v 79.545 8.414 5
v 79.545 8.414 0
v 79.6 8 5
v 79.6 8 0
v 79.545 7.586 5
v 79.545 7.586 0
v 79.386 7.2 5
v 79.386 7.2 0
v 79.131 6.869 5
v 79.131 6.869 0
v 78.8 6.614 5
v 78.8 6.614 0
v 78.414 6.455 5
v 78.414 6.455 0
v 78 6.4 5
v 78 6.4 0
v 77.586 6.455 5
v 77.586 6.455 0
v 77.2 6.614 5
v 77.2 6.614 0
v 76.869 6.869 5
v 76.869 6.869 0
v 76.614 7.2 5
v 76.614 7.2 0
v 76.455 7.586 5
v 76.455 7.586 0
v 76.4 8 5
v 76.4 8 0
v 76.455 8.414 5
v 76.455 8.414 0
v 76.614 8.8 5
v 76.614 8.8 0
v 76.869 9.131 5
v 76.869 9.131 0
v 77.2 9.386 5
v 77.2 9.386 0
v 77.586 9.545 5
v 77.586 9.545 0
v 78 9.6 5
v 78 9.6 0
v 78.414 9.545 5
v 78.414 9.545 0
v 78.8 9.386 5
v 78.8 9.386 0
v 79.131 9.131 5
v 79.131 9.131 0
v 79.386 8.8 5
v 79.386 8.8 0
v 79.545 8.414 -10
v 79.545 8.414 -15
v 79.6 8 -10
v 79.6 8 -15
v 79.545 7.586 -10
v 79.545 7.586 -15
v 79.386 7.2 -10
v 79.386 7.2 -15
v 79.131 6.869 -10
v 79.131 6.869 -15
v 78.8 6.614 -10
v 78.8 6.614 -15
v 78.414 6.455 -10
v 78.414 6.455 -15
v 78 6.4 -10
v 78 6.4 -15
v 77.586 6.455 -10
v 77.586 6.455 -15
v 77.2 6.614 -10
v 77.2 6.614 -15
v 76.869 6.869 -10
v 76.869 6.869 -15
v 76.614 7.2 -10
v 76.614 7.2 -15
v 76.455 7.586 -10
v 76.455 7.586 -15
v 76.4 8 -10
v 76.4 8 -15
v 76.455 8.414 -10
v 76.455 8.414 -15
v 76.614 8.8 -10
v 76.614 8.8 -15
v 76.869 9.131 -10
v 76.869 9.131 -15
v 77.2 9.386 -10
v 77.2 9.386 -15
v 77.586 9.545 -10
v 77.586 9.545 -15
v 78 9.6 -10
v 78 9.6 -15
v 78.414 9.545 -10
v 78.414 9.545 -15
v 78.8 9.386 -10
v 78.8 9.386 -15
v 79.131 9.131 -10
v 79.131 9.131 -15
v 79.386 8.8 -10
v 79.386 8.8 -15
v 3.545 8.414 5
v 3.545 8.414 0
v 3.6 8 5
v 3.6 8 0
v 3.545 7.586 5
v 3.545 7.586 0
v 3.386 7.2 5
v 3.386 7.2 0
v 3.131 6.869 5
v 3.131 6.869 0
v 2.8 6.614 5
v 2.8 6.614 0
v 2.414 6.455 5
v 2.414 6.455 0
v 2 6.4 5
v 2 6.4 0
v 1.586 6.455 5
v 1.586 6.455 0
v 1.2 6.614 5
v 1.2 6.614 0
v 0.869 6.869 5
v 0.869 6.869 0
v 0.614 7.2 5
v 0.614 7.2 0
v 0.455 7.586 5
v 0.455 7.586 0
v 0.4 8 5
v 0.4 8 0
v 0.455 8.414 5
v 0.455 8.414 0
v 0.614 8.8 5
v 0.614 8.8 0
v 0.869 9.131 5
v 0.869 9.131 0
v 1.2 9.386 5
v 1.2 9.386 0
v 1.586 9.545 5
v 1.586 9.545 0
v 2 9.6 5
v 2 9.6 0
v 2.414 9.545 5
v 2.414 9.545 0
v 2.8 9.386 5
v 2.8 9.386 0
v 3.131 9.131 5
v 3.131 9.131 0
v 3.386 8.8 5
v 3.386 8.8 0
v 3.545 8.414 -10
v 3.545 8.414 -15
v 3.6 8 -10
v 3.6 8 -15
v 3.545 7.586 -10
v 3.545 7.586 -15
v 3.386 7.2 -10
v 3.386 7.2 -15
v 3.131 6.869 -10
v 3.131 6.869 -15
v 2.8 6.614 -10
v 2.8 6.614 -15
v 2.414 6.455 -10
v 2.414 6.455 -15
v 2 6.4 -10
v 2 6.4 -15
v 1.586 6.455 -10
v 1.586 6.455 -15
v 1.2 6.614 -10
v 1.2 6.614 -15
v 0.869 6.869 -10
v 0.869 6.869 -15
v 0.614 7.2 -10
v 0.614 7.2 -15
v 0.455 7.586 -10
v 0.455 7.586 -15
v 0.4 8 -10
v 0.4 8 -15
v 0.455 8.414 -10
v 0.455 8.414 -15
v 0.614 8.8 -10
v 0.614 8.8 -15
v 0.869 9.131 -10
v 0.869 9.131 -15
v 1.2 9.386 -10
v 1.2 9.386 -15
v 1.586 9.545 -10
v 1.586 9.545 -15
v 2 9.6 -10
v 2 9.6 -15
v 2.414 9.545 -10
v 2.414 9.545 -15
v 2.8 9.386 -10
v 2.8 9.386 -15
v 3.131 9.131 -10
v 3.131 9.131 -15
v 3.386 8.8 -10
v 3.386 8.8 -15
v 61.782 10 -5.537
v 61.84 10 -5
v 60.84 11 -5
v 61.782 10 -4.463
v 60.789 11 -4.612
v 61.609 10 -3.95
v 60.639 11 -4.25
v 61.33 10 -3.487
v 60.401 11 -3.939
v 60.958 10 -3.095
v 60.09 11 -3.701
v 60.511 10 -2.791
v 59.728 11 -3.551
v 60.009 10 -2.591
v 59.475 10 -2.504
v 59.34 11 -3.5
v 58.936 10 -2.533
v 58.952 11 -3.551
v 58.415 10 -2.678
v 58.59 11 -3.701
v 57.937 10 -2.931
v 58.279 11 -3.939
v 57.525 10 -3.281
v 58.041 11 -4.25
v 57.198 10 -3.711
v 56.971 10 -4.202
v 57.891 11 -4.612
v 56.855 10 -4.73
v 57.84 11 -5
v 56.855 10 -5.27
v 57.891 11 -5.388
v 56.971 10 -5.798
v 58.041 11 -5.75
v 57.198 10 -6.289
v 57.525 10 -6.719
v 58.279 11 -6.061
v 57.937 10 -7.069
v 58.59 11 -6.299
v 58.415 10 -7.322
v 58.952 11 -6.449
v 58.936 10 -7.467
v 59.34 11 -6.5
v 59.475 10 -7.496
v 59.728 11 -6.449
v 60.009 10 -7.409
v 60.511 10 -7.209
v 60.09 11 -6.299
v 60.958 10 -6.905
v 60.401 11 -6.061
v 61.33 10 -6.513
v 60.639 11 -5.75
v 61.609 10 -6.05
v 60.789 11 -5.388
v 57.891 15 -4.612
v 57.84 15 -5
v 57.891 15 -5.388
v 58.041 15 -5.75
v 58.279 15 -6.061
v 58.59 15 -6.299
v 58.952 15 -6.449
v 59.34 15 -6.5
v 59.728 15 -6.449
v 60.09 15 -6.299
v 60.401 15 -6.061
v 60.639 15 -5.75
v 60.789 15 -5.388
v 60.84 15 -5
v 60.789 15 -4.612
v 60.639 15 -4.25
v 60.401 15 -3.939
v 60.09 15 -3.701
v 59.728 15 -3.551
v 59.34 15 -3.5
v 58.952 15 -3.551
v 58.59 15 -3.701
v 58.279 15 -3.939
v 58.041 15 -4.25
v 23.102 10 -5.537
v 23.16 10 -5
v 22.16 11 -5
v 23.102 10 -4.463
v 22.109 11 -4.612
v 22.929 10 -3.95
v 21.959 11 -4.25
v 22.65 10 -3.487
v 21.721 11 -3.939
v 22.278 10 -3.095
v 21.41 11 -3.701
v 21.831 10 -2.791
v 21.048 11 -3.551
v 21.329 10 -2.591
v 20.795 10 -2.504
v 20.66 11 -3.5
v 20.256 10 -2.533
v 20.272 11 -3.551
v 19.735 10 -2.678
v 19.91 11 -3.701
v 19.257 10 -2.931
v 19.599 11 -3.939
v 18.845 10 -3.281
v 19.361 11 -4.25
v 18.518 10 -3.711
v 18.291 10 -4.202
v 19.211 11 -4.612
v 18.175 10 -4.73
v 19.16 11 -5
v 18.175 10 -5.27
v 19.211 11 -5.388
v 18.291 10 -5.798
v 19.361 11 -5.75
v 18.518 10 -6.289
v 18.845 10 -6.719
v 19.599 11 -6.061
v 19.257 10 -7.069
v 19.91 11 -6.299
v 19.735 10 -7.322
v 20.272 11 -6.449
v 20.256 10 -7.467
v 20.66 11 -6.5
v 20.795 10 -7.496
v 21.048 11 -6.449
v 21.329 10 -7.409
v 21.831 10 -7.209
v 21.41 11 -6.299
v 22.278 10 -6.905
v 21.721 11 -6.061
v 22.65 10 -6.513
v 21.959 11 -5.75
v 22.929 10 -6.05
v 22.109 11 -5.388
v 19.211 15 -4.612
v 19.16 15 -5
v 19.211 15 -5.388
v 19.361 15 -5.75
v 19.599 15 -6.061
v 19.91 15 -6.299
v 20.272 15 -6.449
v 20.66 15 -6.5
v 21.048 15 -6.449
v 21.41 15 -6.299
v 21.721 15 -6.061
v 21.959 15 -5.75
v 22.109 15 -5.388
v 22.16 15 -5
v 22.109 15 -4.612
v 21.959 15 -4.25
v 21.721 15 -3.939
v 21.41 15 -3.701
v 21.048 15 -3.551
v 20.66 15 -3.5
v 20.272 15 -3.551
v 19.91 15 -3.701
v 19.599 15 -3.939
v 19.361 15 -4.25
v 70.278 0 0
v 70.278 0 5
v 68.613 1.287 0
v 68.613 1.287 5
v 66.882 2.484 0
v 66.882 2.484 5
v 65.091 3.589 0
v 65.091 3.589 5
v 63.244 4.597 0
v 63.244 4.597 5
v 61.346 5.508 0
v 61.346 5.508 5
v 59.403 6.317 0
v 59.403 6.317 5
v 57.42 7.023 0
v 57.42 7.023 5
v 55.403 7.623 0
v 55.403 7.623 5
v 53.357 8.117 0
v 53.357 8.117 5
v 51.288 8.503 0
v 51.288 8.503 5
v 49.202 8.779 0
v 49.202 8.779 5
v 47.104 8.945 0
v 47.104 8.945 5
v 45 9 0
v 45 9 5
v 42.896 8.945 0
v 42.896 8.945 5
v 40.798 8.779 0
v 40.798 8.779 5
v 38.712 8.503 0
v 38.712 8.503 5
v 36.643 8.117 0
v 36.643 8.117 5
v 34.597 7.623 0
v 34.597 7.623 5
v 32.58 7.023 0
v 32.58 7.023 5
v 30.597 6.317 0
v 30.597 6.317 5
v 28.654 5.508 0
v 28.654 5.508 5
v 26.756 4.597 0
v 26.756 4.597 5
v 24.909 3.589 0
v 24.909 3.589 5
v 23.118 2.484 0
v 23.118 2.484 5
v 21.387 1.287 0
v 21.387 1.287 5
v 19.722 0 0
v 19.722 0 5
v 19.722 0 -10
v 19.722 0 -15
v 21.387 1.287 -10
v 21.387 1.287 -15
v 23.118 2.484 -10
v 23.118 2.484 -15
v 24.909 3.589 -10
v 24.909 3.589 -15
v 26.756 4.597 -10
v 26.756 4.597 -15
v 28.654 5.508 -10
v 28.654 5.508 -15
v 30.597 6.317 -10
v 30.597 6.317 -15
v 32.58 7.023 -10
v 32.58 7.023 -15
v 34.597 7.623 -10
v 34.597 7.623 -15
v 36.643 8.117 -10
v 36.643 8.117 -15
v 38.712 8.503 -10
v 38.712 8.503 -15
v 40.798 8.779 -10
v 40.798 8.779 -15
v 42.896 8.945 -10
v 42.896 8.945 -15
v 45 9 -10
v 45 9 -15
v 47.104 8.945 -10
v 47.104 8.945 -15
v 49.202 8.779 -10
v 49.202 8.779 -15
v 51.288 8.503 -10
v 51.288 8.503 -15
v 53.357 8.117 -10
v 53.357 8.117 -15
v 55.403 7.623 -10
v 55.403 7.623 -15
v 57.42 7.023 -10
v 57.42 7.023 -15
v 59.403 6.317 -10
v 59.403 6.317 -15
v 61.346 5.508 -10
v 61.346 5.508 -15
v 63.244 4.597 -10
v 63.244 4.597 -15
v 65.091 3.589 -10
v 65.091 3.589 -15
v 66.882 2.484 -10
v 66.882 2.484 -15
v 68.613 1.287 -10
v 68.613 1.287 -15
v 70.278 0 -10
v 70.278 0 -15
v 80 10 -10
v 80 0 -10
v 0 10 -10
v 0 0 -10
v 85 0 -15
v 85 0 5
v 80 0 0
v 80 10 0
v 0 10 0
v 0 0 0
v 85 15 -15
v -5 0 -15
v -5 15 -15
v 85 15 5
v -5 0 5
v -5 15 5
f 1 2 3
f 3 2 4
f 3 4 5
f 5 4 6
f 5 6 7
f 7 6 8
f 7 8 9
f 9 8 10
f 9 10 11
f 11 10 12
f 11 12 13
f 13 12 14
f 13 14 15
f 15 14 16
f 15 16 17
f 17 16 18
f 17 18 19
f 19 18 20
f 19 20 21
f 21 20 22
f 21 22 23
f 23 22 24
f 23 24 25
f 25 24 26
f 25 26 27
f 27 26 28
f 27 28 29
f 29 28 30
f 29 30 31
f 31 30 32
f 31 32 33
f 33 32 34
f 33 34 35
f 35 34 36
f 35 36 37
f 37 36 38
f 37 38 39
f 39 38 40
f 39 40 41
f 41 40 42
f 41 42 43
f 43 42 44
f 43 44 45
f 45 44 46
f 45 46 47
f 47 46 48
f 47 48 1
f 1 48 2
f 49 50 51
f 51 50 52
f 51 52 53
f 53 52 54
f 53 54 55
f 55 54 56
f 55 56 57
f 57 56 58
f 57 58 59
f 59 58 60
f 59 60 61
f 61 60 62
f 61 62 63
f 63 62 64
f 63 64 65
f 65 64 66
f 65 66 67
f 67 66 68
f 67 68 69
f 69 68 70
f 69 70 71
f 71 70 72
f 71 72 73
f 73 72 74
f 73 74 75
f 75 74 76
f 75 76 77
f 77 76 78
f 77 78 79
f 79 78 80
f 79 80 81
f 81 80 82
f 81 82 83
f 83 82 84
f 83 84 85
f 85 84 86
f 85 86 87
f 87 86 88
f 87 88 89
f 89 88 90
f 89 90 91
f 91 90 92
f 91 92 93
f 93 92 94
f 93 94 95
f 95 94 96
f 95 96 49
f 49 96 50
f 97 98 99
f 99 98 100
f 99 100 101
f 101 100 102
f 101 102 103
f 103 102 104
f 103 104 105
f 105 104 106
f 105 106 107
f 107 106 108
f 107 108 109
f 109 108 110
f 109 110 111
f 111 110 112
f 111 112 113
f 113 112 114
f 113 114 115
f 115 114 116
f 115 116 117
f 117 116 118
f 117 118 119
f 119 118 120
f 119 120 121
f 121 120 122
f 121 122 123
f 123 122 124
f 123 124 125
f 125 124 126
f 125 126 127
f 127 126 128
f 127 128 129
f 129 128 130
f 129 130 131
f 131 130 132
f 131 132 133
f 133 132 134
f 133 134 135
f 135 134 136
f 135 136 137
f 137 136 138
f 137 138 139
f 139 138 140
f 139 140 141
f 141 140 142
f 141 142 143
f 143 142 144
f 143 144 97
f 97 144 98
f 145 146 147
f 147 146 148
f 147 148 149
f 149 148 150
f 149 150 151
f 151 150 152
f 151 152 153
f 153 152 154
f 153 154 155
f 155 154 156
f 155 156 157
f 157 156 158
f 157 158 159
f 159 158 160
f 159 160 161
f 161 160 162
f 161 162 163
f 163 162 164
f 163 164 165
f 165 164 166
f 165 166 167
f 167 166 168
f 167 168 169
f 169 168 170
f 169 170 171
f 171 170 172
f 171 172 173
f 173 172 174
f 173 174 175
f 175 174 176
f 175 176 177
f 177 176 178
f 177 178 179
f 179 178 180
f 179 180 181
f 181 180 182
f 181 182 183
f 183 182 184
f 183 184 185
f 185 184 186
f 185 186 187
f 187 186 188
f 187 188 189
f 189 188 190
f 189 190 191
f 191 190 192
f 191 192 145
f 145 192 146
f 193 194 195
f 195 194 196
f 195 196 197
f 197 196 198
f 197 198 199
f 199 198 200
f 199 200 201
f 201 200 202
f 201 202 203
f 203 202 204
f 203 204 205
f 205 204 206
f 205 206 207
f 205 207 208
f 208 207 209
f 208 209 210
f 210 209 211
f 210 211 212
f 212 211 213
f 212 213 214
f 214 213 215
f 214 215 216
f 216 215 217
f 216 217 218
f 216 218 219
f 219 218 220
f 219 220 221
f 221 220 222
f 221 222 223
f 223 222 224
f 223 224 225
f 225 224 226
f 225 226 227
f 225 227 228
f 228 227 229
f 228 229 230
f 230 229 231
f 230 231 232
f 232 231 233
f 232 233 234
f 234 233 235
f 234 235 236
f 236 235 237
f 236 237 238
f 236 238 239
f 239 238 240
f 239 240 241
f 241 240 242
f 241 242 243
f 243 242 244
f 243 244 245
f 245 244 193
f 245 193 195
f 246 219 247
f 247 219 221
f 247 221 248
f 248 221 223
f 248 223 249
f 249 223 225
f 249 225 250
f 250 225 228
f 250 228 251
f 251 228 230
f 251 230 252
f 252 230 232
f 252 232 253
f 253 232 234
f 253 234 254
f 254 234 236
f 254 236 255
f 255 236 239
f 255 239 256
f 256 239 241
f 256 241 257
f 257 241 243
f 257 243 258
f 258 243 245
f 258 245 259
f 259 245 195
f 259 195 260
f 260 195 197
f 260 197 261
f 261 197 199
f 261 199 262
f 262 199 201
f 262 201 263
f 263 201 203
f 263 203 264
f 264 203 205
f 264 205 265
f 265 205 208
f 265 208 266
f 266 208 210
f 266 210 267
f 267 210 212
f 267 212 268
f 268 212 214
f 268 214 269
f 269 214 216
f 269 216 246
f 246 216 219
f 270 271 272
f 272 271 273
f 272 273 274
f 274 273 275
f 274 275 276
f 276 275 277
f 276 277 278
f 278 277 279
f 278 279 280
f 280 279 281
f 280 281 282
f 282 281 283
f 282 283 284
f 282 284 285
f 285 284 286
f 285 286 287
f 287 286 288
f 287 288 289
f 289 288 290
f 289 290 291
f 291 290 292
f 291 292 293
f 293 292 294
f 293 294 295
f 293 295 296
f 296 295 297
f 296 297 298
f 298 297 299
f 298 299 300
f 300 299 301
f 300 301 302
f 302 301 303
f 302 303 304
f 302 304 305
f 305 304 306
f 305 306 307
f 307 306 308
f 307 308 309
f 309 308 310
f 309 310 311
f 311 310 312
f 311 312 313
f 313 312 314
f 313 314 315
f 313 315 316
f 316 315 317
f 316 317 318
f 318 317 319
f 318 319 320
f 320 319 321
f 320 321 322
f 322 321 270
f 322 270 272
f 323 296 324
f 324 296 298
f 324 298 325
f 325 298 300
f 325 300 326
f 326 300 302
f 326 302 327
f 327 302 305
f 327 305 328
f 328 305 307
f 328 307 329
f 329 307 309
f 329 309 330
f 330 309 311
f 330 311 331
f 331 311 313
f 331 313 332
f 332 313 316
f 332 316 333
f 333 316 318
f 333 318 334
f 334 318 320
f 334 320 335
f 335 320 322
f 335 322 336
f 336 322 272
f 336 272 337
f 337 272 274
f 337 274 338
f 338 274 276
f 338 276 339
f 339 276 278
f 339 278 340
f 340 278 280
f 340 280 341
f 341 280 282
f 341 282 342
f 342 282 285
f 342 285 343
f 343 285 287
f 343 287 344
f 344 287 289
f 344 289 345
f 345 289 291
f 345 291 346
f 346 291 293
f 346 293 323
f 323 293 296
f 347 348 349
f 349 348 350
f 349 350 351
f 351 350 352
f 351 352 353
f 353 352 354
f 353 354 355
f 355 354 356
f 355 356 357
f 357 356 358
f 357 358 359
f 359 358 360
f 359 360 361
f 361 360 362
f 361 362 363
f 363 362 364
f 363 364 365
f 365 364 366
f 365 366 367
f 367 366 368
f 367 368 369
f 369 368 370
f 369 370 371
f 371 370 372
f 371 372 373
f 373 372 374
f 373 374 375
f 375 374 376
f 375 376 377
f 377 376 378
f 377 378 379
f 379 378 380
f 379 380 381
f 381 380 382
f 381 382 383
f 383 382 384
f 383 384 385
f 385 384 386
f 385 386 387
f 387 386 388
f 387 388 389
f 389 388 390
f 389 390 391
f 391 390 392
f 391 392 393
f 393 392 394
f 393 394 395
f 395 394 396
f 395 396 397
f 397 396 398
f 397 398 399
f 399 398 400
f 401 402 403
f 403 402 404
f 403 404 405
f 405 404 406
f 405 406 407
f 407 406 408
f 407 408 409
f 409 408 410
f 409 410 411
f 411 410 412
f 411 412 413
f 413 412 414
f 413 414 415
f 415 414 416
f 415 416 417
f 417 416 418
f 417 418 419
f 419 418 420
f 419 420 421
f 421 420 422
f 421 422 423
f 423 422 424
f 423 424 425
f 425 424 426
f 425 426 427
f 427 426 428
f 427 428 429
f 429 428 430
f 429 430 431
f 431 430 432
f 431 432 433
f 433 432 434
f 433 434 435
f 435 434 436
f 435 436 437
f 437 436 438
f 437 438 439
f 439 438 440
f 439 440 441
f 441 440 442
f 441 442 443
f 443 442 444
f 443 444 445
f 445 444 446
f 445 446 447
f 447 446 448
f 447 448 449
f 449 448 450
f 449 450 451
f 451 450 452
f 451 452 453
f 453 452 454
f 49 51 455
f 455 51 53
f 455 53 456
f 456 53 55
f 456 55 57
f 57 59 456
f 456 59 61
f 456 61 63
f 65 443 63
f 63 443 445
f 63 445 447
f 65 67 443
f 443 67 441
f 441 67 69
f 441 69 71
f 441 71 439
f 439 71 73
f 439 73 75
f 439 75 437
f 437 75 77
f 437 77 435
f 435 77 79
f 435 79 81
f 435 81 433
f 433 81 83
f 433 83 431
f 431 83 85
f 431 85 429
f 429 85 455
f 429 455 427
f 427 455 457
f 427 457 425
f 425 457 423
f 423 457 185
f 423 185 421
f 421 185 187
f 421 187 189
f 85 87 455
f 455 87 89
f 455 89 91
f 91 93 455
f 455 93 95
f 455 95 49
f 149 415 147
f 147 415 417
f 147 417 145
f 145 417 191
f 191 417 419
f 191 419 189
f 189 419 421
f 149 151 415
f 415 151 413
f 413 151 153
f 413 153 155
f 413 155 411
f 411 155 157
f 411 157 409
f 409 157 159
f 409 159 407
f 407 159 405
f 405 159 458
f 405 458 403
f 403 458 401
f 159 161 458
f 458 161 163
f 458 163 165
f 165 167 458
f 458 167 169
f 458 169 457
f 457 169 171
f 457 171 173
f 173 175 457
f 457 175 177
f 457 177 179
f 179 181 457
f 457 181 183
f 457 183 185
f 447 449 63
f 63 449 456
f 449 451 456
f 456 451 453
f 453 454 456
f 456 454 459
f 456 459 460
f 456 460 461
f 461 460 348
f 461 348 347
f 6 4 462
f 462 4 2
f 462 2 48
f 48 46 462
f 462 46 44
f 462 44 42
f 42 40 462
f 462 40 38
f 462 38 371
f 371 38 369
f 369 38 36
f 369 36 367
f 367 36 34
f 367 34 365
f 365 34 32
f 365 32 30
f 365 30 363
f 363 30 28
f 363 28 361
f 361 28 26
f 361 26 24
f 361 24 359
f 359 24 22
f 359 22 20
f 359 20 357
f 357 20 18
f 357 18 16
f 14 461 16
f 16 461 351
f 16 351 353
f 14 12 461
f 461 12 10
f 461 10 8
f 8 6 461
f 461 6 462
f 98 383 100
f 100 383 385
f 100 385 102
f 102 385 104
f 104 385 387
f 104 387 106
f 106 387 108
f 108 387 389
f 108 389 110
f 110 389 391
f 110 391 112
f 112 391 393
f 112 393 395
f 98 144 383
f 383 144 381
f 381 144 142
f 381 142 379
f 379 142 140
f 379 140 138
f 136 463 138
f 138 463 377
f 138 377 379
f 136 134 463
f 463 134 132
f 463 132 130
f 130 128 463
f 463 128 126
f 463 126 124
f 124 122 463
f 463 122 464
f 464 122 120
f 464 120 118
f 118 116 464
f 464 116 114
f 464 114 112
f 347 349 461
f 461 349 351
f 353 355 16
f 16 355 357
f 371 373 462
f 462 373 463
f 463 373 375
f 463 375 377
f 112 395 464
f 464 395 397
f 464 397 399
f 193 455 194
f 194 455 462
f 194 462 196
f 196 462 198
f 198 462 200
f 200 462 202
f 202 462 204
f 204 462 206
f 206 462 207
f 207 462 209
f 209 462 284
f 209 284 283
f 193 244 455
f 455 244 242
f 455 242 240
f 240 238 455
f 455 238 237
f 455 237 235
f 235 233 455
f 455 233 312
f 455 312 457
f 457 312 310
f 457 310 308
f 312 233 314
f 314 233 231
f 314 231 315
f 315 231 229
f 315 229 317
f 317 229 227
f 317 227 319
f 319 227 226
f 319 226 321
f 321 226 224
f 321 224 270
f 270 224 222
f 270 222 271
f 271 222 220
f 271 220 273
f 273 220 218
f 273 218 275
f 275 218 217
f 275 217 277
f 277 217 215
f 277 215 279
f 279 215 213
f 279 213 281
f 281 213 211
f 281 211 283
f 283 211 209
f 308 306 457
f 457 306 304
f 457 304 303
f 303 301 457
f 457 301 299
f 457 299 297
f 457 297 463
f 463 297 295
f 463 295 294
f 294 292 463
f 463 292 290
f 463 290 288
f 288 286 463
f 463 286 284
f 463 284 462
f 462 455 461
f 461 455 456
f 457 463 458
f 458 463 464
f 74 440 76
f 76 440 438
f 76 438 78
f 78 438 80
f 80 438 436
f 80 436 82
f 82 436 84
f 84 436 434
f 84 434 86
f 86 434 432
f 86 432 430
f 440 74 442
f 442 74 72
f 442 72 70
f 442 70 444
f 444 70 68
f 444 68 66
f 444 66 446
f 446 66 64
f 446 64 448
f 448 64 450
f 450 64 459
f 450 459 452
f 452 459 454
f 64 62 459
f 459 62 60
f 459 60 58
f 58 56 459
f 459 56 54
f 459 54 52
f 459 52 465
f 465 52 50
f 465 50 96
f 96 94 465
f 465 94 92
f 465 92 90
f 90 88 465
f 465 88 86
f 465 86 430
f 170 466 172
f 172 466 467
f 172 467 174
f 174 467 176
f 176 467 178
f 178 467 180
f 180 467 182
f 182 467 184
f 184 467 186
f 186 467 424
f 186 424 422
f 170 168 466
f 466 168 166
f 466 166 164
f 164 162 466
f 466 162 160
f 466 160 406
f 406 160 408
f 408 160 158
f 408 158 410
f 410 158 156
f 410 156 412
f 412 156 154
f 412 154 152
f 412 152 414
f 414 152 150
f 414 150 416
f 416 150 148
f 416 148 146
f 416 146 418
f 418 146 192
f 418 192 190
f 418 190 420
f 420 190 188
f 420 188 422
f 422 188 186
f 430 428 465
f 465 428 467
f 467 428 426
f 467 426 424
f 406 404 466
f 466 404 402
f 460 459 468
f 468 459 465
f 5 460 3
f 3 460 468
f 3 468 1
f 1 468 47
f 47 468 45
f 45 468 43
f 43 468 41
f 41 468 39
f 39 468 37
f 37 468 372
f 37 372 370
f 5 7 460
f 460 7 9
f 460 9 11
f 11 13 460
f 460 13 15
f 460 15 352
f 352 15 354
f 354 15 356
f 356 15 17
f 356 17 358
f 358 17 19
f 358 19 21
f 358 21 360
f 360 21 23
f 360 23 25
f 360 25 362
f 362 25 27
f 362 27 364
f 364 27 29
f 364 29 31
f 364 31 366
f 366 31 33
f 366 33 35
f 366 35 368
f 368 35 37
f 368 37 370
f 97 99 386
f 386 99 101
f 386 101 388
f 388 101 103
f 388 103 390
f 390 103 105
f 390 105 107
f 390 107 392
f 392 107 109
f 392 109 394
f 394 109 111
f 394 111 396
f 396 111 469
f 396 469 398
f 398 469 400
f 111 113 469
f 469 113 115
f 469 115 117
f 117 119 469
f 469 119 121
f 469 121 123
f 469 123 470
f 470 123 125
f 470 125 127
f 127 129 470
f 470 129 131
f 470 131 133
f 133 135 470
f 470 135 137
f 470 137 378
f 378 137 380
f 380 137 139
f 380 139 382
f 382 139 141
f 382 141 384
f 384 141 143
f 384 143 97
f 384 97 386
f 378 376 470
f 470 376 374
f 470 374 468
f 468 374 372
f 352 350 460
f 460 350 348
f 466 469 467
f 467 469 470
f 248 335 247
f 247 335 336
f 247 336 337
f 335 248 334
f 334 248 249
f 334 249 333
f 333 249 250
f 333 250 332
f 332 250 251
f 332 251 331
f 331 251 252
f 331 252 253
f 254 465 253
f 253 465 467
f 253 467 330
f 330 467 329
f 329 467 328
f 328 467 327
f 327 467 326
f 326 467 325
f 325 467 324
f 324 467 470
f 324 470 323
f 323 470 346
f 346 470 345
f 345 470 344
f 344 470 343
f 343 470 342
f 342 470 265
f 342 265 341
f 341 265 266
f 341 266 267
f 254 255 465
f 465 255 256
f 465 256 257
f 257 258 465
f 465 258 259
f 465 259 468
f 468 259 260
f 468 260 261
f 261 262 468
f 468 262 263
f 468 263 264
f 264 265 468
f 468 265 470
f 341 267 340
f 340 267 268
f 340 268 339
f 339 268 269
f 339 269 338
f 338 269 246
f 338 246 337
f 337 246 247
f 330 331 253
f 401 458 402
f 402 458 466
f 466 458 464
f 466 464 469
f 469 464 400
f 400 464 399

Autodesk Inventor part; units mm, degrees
ref_plane "YZ Plane" through (0, 0, 0) normal (1, 0, 0) x (0, 1, 0)
ref_plane "XZ Plane" through (0, 0, 0) normal (0, 1, 0) x (-1, 0, 0)
ref_plane "XY Plane" through (0, 0, 0) normal (0, 0, 1) x (1, 0, 0)
sketch "Boceto1" plane through (0, 0, 0) normal (0, 1, 0) x (-1, 0, 0)
  line L0 (0, 0) -> (-80, 0)
  line L1 (-80, 0) -> (-80, -10)
  line L2 (-80, -10) -> (0, -10)
  line L3 (0, -10) -> (0, 0)
  line L4 (5, 0) -> (5, 5)
  line L5 (-80, -10) -> (-80, -15)
  line L6 (-80, -15) -> (-85, -15)
  line L7 (5, 5) -> (-85, 5)
  line L8 (-85, 5) -> (-85, -15)
  line L9 (-85, -15) -> (5, -15)
  line L10 (5, -15) -> (5, 5)
  dimension "d1" = 10
  dimension "d2" = 5
  dimension "d3" = 5
  dimension "d5" = 5
extrude "Extrusión1" add sketch "Boceto1" along normal blind 15
sketch "Boceto2" plane through (0, 15, 0) normal (0, 1, 0) x (1, 0, 0)
  line L0 (80, 10) -> (80, 0) projected
  line L1 (80, 0) -> (0, 0)
  line L2 (0, 0) -> (0, 10)
  line L3 (0, 10) -> (80, 10)
  line L4 (80, 10) -> (80, 0)
extrude "Extrusión2" add sketch "Boceto2" against normal blind 5
sketch "Boceto3" plane through (-5, 0, 5) normal (0, 0, 1) x (1, 0, 0)
  line L0 (90, 15) -> (90, 9)
  line L1 (90, 0) -> (90, 15) projected
  line L2 (90, 9) -> (50, 9)
  line L3 (50, 9) -> (50, -31)
  circle A0 centre (50, -31) radius 40
  point P0 (5, 0)
  dimension "d10" = 6
  dimension "d11" = 40
  dimension "d12" = 40
extrude "Extrusión3" cut sketch "Boceto3" against normal blind 21
sketch "Boceto4" plane through (0, 10, 0) normal (0, -1, 0) x (1, 0, 0)
  line L0 (0, 0) -> (0, -5)
  line L1 (0, 0) -> (0, -10) projected
  line L2 (0, -5) -> (80, -5)
  line L3 (80, -10) -> (80, 0) projected
  line L4 (80, -5) -> (59.34, -5)
  line L5 (0, -5) -> (20.66, -5)
  dimension "d15" = 5
  dimension "d16" = 20.66
  dimension "d17" = 20.66
hole "Agujero1" at (20.66, 10, -5) at (59.34, 10, -5) direction (0, 1, 0) diameter 3 end through all countersink diameter 5 countersink angle 90
sketch "Boceto5" plane through (85, 15, -15) normal (0, 0, -1) x (-1, 0, 0)
  line L0 (90, -15) -> (90, 0) projected
  line L1 (90, 0) -> (83, 0)
  line L2 (0, 0) -> (90, 0) projected
  line L3 (83, 0) -> (83, -7)
  point P0 (85, -15)
  dimension "d25" = 7
  dimension "d26" = 7
sketch "Boceto6" plane through (85, 15, -15) normal (0, 0, -1) x (-1, 0, 0)
  line L0 (0, 0) -> (90, 0) projected
  line L1 (0, 0) -> (0, -7)
  line L2 (0, -15) -> (0, 0) projected
  line L3 (0, -7) -> (7, -7)
  circle A0 centre (7, -7) radius 1.6
  line L4 (90, 0) -> (83, 0)
  line L5 (83, 0) -> (83, -7)
  circle A1 centre (83, -7) radius 1.6
  point P0 (85, -15)
  dimension "d27" = 7
  dimension "d28" = 7
  dimension "d29" = 3.2
  dimension "d30" = 7
  dimension "d31" = 7
  dimension "d32" = 3.2
extrude "Extrusión4" cut sketch "Boceto6" against normal blind 28.75
properties part number "Base Ventilador"
